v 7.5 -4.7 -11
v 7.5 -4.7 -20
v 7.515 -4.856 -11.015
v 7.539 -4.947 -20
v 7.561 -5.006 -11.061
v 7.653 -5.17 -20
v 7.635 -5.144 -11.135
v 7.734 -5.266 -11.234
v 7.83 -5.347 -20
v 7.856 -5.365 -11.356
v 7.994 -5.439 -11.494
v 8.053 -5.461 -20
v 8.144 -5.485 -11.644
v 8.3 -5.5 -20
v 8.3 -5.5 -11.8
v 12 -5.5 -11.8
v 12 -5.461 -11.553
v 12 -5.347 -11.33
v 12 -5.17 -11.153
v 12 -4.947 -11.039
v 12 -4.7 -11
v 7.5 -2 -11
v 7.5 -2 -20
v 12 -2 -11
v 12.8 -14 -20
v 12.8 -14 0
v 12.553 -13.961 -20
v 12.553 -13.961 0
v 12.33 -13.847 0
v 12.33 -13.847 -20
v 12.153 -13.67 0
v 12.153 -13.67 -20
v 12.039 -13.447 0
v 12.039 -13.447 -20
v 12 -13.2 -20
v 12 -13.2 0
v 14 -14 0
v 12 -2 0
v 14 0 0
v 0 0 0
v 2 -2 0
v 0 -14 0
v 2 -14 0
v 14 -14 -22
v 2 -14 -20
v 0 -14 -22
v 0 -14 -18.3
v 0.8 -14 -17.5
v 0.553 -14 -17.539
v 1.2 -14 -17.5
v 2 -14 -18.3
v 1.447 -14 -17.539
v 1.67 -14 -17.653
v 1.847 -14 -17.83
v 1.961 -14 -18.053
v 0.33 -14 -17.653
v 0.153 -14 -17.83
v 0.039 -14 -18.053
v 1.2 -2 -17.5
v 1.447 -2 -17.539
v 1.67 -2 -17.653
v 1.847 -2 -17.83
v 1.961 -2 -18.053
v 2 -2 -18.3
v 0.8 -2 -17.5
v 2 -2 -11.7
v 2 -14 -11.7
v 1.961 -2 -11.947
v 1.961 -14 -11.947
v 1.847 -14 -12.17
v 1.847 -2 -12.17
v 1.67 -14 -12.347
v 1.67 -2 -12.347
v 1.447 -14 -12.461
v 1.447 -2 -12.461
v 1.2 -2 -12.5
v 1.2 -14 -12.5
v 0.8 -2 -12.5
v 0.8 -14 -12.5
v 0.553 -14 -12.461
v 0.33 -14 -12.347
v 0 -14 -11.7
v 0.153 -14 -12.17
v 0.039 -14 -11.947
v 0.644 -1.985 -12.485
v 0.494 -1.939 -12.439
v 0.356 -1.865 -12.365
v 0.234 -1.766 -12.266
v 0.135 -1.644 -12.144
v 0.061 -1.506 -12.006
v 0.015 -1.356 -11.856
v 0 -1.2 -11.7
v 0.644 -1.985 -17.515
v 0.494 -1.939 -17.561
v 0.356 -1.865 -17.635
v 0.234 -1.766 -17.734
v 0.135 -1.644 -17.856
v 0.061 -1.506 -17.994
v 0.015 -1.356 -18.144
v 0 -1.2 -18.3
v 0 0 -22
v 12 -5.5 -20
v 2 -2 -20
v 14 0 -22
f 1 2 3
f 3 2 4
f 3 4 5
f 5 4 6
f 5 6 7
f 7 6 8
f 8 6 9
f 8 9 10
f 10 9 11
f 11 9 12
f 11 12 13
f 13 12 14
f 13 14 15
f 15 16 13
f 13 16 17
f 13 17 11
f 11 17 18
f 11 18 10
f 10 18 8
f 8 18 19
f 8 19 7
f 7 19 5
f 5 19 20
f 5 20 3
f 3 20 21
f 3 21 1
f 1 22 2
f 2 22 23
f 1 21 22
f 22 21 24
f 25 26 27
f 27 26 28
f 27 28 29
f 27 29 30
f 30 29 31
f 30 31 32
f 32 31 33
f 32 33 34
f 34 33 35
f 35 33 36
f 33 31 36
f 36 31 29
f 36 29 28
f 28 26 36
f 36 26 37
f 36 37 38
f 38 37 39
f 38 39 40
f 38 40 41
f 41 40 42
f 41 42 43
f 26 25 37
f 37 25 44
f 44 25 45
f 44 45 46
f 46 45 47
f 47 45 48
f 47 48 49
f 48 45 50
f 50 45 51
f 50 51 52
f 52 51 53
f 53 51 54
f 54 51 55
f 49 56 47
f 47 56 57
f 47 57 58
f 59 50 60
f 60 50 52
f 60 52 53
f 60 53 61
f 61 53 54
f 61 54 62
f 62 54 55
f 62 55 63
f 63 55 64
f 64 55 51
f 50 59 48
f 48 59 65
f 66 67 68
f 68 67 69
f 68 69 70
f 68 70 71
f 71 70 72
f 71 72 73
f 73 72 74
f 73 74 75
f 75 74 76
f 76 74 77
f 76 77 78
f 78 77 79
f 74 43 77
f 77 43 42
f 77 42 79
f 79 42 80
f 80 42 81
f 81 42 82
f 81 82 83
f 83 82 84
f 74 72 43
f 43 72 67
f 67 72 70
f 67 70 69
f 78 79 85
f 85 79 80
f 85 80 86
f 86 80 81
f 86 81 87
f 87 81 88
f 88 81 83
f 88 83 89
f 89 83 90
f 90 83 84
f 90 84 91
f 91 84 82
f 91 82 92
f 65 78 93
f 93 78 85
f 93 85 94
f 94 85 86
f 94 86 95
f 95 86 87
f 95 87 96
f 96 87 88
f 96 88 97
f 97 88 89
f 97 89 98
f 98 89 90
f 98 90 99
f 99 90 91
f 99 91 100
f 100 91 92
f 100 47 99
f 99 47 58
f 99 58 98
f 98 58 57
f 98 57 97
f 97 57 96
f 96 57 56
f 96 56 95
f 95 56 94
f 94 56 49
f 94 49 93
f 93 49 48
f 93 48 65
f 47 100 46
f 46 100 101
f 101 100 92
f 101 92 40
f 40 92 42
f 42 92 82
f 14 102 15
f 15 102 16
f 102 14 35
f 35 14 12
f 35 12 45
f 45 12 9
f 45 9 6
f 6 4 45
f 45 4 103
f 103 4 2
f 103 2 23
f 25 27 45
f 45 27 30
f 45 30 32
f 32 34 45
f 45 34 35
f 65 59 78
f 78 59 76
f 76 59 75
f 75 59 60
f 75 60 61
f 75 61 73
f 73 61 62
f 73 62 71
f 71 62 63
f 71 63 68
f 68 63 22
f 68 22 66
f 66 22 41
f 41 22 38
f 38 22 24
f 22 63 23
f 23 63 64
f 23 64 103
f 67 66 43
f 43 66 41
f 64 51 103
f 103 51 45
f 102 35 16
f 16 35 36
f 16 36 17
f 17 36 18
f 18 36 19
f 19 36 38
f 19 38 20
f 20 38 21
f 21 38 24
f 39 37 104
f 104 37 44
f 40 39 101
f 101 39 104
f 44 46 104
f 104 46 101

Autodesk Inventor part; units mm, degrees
ref_plane "YZ Plane" through (0, 0, 0) normal (1, 0, 0) x (0, 1, 0)
ref_plane "XZ Plane" through (0, 0, 0) normal (0, 1, 0) x (-1, 0, 0)
ref_plane "XY Plane" through (0, 0, 0) normal (0, 0, 1) x (1, 0, 0)
sketch "Sketch1" plane through (0, 0, 0) normal (0, 0, 1) x (1, 0, 0)
  line L0 (0, 0) -> (14, 0)
  line L1 (14, 0) -> (14, -14)
  line L2 (14, -14) -> (0, -14)
  line L3 (0, -14) -> (0, 0)
  dimension "d0" = 14
  dimension "d1" = 14
extrude "Extrusion1" add sketch "Sketch1" against normal blind 22
sketch "Sketch2" plane through (0, 0, 0) normal (0, 0, 1) x (1, 0, 0)
  line L0 (2, -2) -> (12, -2)
  line L1 (12, -2) -> (12, -22)
  line L2 (12, -22) -> (2, -22)
  line L3 (2, -22) -> (2, -2)
  point P0 (0, 0)
  dimension "d4" = 10
  dimension "d5" = 20
extrude "Extrusion2" cut sketch "Sketch2" against normal blind 20
sketch "Sketch8" plane through (0, -14, 0) normal (-1, 0, 0) x (0, 0, 1)
  point P0 (0, 14)
sketch "Sketch9" plane through (0, -14, 0) normal (-1, 0, 0) x (0, 0, 1)
  point P0 (0, 14)
sketch "Sketch11" plane through (0, -14, 0) normal (-1, 0, 0) x (0, 0, 1)
  point P0 (0, 14)
sketch "Sketch14" plane through (0, -14, 0) normal (-1, 0, 0) x (0, 0, 1)
  point P0 (0, 14)
sketch "Sketch15" plane through (0, -14, 0) normal (-1, 0, 0) x (0, 0, 1)
  point P0 (0, 14)
sketch "Sketch16" plane through (0, -14, 0) normal (-1, 0, 0) x (0, 0, 1)
  line L0 (-12.5, 12) -> (-17.5, 12)
  line L1 (-17.5, 12) -> (-17.5, 0)
  line L2 (-17.5, 0) -> (-12.5, 0)
  line L3 (-12.5, 0) -> (-12.5, 12)
  point P0 (0, 14)
  dimension "d30" = 5
  dimension "d31" = 12
extrude "Extrusion10" cut sketch "Sketch16" against normal blind 2
sketch "Sketch17" plane through (0, 0, -20) normal (0, 0, 1) x (1, 0, 0)
  line L0 (12, -2) -> (7.5, -2)
  line L1 (7.5, -2) -> (7.5, -5.5)
  line L2 (7.5, -5.5) -> (12, -5.5)
  line L3 (12, -5.5) -> (12, -2)
  point P0 (0, 0)
  dimension "d34" = 4.5
  dimension "d35" = 3.5
extrude "Extrusion11" add sketch "Sketch17" along normal blind 9
fillet "Fillet1" radius 0.8 8 edges at (0, -8, -12.5) (2, -8, -12.5) (0, -2, -15) (0, -8, -17.5) (2, -8, -17.5) (12, -14, -10) (7.5, -5.5, -15.5) (9.75, -5.5, -11)
properties part number "housing_v09"
